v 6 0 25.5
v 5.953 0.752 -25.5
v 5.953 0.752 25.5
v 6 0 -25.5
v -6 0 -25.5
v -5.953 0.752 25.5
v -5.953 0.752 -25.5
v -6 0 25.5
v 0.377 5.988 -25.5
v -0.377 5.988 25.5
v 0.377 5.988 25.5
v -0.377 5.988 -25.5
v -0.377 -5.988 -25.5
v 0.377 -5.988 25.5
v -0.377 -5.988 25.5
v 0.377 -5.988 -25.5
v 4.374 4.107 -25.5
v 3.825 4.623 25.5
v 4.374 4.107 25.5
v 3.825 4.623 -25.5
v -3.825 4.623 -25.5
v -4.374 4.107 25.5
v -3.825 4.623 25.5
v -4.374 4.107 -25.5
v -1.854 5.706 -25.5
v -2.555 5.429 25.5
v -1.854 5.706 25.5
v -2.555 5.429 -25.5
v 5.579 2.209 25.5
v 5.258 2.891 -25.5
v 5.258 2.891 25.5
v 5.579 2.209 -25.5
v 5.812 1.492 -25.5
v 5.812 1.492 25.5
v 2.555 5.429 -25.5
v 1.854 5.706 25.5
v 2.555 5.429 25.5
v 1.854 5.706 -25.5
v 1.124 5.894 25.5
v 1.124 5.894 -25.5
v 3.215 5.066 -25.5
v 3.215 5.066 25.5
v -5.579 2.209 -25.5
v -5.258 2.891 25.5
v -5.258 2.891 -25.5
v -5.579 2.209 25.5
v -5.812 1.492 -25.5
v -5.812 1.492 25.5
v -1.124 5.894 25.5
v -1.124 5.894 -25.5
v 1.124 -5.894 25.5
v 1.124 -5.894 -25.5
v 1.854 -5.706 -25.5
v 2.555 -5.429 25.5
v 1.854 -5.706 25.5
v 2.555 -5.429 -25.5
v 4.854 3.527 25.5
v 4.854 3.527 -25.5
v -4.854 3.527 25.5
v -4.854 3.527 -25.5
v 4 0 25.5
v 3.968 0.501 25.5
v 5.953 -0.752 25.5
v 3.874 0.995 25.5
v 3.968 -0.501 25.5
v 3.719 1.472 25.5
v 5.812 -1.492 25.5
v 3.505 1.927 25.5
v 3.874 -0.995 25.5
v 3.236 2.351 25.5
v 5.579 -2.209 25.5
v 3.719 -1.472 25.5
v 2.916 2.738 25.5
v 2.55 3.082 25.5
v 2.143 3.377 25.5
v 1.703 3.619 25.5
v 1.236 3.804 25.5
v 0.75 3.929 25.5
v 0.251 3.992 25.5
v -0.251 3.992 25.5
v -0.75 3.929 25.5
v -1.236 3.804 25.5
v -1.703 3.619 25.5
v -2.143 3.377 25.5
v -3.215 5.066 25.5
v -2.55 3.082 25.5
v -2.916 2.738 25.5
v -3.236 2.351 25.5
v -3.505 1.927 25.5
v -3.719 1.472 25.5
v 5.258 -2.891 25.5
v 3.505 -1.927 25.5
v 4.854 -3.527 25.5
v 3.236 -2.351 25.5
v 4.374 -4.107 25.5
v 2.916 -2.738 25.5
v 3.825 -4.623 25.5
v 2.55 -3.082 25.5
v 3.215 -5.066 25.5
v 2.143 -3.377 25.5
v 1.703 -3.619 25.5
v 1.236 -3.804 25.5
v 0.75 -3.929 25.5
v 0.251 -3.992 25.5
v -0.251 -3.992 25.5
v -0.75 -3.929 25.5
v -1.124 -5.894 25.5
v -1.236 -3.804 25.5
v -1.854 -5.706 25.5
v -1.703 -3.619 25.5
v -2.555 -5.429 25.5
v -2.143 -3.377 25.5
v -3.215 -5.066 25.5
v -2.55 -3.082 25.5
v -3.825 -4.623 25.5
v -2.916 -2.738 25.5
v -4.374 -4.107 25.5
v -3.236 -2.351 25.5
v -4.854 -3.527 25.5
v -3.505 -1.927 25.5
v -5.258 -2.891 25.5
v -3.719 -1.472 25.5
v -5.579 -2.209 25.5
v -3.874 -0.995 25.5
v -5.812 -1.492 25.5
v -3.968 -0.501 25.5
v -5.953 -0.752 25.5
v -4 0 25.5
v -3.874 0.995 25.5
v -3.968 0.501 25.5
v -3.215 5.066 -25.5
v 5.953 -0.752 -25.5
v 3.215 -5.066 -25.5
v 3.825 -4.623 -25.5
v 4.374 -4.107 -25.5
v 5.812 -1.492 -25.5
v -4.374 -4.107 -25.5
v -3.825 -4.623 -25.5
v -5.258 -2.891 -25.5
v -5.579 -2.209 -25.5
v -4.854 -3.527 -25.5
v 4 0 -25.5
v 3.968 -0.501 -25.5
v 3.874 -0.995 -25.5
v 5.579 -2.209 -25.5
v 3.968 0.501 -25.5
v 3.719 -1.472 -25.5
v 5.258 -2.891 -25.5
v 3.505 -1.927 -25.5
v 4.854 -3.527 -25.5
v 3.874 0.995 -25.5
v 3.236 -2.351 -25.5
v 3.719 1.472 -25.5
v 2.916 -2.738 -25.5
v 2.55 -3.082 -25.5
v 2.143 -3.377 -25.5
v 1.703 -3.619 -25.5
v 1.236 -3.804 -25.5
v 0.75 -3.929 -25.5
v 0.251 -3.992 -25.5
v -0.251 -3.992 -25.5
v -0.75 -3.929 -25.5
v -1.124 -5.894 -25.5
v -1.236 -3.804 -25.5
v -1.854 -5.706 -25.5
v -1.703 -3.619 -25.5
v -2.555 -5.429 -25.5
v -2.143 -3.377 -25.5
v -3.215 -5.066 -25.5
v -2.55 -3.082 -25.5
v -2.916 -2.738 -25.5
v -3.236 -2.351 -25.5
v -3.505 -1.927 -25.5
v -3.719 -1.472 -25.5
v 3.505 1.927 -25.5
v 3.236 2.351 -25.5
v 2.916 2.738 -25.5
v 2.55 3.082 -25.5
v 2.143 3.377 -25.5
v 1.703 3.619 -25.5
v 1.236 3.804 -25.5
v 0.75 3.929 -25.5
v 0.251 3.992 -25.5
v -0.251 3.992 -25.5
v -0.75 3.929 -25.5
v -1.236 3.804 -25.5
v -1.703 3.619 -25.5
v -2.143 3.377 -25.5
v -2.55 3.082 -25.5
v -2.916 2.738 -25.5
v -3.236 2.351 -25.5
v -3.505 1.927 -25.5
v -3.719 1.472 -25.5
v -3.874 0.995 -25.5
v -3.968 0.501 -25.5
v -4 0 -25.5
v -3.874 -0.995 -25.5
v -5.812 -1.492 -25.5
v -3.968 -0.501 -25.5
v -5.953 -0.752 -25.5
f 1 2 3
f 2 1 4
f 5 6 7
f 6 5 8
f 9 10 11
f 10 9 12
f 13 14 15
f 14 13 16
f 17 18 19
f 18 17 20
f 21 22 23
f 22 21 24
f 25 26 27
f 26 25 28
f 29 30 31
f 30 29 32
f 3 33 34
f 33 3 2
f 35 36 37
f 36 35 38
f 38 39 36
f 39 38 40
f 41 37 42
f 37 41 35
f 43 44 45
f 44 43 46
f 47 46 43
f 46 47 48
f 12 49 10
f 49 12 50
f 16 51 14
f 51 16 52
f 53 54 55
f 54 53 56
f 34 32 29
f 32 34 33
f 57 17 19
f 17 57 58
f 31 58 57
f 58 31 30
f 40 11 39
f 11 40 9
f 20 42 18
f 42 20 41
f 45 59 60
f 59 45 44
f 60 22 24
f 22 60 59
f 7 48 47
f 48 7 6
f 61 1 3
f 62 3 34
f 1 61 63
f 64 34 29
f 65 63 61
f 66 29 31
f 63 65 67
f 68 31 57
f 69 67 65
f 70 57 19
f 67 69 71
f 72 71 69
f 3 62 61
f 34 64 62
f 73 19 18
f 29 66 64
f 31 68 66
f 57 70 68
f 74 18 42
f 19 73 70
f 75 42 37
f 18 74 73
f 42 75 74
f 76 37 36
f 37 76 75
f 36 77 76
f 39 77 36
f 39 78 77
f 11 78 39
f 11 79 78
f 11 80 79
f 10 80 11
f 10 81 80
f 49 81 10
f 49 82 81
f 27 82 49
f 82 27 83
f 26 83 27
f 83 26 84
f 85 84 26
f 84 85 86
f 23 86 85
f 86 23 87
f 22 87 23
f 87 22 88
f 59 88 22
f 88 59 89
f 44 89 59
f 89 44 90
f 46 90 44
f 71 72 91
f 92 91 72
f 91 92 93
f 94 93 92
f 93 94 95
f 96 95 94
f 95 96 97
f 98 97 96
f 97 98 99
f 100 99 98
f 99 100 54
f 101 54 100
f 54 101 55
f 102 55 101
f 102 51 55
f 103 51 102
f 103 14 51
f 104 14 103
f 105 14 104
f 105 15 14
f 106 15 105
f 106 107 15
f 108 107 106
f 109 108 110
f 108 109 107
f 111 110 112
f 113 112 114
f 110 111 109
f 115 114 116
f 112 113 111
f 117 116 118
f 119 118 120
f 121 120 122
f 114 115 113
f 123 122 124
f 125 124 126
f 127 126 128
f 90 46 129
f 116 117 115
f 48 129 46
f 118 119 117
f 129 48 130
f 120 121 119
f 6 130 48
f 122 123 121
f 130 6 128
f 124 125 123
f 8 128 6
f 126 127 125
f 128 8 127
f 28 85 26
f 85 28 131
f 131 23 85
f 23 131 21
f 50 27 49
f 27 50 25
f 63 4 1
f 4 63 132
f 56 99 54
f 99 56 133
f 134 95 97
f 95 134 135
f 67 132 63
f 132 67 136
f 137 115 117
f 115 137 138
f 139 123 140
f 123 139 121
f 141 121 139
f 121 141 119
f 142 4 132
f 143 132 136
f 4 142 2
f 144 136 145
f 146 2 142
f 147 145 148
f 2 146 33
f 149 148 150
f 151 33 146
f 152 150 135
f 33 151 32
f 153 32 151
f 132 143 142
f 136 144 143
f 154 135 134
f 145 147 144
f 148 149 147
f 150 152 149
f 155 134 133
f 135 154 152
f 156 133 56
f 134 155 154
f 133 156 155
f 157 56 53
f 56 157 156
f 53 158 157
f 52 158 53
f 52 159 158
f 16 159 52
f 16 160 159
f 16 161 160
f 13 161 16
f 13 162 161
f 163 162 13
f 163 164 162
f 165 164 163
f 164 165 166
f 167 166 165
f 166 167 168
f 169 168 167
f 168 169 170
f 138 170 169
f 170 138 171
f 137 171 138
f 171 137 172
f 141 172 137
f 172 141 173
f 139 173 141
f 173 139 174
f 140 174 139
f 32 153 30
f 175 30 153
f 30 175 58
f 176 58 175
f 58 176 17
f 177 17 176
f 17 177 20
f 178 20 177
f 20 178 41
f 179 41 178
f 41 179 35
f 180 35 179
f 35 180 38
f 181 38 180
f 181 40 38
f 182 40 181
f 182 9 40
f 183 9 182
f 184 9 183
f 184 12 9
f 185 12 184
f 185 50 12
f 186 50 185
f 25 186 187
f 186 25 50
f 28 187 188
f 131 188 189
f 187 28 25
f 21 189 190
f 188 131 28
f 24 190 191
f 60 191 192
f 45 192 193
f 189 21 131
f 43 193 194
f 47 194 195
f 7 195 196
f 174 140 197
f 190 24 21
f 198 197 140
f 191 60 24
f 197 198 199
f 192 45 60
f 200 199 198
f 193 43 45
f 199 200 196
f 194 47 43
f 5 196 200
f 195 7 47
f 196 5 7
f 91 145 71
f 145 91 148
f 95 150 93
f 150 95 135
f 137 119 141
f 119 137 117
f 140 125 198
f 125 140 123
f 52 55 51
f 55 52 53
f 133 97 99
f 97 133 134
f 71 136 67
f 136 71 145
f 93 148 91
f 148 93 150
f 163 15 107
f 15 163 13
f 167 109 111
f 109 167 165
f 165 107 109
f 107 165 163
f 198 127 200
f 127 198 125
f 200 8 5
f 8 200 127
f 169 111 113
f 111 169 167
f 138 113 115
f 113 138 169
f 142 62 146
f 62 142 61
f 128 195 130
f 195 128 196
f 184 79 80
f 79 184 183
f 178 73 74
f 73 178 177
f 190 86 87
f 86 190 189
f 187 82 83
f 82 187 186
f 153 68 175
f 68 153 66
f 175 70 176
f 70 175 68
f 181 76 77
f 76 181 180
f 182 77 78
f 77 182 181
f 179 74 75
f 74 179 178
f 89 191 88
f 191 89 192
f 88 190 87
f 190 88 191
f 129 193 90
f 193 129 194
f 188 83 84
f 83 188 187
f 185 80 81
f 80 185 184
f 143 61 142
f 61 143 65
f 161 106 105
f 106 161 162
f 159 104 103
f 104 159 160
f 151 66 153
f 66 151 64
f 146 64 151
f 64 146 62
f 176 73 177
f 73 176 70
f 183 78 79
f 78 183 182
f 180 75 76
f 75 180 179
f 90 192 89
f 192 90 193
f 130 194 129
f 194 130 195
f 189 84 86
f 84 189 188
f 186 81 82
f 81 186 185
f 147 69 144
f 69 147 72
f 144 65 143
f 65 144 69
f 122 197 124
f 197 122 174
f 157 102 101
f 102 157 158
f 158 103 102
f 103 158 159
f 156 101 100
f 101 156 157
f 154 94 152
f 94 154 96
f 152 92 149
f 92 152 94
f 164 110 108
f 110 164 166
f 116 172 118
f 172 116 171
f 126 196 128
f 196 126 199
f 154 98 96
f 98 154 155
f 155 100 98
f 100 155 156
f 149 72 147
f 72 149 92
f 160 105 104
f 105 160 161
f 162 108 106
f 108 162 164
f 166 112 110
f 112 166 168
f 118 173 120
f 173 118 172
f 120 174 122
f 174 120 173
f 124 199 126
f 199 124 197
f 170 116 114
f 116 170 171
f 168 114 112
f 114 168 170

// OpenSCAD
$fn = 50;


difference() {
	union() {
		translate(v = [0, 0, -25.5000000000]) {
			cylinder(h = 51, r = 6.0000000000);
		}
	}
	union() {
		translate(v = [0, 0, -100.0000000000]) {
			cylinder(h = 200, r = 4);
		}
	}
}
